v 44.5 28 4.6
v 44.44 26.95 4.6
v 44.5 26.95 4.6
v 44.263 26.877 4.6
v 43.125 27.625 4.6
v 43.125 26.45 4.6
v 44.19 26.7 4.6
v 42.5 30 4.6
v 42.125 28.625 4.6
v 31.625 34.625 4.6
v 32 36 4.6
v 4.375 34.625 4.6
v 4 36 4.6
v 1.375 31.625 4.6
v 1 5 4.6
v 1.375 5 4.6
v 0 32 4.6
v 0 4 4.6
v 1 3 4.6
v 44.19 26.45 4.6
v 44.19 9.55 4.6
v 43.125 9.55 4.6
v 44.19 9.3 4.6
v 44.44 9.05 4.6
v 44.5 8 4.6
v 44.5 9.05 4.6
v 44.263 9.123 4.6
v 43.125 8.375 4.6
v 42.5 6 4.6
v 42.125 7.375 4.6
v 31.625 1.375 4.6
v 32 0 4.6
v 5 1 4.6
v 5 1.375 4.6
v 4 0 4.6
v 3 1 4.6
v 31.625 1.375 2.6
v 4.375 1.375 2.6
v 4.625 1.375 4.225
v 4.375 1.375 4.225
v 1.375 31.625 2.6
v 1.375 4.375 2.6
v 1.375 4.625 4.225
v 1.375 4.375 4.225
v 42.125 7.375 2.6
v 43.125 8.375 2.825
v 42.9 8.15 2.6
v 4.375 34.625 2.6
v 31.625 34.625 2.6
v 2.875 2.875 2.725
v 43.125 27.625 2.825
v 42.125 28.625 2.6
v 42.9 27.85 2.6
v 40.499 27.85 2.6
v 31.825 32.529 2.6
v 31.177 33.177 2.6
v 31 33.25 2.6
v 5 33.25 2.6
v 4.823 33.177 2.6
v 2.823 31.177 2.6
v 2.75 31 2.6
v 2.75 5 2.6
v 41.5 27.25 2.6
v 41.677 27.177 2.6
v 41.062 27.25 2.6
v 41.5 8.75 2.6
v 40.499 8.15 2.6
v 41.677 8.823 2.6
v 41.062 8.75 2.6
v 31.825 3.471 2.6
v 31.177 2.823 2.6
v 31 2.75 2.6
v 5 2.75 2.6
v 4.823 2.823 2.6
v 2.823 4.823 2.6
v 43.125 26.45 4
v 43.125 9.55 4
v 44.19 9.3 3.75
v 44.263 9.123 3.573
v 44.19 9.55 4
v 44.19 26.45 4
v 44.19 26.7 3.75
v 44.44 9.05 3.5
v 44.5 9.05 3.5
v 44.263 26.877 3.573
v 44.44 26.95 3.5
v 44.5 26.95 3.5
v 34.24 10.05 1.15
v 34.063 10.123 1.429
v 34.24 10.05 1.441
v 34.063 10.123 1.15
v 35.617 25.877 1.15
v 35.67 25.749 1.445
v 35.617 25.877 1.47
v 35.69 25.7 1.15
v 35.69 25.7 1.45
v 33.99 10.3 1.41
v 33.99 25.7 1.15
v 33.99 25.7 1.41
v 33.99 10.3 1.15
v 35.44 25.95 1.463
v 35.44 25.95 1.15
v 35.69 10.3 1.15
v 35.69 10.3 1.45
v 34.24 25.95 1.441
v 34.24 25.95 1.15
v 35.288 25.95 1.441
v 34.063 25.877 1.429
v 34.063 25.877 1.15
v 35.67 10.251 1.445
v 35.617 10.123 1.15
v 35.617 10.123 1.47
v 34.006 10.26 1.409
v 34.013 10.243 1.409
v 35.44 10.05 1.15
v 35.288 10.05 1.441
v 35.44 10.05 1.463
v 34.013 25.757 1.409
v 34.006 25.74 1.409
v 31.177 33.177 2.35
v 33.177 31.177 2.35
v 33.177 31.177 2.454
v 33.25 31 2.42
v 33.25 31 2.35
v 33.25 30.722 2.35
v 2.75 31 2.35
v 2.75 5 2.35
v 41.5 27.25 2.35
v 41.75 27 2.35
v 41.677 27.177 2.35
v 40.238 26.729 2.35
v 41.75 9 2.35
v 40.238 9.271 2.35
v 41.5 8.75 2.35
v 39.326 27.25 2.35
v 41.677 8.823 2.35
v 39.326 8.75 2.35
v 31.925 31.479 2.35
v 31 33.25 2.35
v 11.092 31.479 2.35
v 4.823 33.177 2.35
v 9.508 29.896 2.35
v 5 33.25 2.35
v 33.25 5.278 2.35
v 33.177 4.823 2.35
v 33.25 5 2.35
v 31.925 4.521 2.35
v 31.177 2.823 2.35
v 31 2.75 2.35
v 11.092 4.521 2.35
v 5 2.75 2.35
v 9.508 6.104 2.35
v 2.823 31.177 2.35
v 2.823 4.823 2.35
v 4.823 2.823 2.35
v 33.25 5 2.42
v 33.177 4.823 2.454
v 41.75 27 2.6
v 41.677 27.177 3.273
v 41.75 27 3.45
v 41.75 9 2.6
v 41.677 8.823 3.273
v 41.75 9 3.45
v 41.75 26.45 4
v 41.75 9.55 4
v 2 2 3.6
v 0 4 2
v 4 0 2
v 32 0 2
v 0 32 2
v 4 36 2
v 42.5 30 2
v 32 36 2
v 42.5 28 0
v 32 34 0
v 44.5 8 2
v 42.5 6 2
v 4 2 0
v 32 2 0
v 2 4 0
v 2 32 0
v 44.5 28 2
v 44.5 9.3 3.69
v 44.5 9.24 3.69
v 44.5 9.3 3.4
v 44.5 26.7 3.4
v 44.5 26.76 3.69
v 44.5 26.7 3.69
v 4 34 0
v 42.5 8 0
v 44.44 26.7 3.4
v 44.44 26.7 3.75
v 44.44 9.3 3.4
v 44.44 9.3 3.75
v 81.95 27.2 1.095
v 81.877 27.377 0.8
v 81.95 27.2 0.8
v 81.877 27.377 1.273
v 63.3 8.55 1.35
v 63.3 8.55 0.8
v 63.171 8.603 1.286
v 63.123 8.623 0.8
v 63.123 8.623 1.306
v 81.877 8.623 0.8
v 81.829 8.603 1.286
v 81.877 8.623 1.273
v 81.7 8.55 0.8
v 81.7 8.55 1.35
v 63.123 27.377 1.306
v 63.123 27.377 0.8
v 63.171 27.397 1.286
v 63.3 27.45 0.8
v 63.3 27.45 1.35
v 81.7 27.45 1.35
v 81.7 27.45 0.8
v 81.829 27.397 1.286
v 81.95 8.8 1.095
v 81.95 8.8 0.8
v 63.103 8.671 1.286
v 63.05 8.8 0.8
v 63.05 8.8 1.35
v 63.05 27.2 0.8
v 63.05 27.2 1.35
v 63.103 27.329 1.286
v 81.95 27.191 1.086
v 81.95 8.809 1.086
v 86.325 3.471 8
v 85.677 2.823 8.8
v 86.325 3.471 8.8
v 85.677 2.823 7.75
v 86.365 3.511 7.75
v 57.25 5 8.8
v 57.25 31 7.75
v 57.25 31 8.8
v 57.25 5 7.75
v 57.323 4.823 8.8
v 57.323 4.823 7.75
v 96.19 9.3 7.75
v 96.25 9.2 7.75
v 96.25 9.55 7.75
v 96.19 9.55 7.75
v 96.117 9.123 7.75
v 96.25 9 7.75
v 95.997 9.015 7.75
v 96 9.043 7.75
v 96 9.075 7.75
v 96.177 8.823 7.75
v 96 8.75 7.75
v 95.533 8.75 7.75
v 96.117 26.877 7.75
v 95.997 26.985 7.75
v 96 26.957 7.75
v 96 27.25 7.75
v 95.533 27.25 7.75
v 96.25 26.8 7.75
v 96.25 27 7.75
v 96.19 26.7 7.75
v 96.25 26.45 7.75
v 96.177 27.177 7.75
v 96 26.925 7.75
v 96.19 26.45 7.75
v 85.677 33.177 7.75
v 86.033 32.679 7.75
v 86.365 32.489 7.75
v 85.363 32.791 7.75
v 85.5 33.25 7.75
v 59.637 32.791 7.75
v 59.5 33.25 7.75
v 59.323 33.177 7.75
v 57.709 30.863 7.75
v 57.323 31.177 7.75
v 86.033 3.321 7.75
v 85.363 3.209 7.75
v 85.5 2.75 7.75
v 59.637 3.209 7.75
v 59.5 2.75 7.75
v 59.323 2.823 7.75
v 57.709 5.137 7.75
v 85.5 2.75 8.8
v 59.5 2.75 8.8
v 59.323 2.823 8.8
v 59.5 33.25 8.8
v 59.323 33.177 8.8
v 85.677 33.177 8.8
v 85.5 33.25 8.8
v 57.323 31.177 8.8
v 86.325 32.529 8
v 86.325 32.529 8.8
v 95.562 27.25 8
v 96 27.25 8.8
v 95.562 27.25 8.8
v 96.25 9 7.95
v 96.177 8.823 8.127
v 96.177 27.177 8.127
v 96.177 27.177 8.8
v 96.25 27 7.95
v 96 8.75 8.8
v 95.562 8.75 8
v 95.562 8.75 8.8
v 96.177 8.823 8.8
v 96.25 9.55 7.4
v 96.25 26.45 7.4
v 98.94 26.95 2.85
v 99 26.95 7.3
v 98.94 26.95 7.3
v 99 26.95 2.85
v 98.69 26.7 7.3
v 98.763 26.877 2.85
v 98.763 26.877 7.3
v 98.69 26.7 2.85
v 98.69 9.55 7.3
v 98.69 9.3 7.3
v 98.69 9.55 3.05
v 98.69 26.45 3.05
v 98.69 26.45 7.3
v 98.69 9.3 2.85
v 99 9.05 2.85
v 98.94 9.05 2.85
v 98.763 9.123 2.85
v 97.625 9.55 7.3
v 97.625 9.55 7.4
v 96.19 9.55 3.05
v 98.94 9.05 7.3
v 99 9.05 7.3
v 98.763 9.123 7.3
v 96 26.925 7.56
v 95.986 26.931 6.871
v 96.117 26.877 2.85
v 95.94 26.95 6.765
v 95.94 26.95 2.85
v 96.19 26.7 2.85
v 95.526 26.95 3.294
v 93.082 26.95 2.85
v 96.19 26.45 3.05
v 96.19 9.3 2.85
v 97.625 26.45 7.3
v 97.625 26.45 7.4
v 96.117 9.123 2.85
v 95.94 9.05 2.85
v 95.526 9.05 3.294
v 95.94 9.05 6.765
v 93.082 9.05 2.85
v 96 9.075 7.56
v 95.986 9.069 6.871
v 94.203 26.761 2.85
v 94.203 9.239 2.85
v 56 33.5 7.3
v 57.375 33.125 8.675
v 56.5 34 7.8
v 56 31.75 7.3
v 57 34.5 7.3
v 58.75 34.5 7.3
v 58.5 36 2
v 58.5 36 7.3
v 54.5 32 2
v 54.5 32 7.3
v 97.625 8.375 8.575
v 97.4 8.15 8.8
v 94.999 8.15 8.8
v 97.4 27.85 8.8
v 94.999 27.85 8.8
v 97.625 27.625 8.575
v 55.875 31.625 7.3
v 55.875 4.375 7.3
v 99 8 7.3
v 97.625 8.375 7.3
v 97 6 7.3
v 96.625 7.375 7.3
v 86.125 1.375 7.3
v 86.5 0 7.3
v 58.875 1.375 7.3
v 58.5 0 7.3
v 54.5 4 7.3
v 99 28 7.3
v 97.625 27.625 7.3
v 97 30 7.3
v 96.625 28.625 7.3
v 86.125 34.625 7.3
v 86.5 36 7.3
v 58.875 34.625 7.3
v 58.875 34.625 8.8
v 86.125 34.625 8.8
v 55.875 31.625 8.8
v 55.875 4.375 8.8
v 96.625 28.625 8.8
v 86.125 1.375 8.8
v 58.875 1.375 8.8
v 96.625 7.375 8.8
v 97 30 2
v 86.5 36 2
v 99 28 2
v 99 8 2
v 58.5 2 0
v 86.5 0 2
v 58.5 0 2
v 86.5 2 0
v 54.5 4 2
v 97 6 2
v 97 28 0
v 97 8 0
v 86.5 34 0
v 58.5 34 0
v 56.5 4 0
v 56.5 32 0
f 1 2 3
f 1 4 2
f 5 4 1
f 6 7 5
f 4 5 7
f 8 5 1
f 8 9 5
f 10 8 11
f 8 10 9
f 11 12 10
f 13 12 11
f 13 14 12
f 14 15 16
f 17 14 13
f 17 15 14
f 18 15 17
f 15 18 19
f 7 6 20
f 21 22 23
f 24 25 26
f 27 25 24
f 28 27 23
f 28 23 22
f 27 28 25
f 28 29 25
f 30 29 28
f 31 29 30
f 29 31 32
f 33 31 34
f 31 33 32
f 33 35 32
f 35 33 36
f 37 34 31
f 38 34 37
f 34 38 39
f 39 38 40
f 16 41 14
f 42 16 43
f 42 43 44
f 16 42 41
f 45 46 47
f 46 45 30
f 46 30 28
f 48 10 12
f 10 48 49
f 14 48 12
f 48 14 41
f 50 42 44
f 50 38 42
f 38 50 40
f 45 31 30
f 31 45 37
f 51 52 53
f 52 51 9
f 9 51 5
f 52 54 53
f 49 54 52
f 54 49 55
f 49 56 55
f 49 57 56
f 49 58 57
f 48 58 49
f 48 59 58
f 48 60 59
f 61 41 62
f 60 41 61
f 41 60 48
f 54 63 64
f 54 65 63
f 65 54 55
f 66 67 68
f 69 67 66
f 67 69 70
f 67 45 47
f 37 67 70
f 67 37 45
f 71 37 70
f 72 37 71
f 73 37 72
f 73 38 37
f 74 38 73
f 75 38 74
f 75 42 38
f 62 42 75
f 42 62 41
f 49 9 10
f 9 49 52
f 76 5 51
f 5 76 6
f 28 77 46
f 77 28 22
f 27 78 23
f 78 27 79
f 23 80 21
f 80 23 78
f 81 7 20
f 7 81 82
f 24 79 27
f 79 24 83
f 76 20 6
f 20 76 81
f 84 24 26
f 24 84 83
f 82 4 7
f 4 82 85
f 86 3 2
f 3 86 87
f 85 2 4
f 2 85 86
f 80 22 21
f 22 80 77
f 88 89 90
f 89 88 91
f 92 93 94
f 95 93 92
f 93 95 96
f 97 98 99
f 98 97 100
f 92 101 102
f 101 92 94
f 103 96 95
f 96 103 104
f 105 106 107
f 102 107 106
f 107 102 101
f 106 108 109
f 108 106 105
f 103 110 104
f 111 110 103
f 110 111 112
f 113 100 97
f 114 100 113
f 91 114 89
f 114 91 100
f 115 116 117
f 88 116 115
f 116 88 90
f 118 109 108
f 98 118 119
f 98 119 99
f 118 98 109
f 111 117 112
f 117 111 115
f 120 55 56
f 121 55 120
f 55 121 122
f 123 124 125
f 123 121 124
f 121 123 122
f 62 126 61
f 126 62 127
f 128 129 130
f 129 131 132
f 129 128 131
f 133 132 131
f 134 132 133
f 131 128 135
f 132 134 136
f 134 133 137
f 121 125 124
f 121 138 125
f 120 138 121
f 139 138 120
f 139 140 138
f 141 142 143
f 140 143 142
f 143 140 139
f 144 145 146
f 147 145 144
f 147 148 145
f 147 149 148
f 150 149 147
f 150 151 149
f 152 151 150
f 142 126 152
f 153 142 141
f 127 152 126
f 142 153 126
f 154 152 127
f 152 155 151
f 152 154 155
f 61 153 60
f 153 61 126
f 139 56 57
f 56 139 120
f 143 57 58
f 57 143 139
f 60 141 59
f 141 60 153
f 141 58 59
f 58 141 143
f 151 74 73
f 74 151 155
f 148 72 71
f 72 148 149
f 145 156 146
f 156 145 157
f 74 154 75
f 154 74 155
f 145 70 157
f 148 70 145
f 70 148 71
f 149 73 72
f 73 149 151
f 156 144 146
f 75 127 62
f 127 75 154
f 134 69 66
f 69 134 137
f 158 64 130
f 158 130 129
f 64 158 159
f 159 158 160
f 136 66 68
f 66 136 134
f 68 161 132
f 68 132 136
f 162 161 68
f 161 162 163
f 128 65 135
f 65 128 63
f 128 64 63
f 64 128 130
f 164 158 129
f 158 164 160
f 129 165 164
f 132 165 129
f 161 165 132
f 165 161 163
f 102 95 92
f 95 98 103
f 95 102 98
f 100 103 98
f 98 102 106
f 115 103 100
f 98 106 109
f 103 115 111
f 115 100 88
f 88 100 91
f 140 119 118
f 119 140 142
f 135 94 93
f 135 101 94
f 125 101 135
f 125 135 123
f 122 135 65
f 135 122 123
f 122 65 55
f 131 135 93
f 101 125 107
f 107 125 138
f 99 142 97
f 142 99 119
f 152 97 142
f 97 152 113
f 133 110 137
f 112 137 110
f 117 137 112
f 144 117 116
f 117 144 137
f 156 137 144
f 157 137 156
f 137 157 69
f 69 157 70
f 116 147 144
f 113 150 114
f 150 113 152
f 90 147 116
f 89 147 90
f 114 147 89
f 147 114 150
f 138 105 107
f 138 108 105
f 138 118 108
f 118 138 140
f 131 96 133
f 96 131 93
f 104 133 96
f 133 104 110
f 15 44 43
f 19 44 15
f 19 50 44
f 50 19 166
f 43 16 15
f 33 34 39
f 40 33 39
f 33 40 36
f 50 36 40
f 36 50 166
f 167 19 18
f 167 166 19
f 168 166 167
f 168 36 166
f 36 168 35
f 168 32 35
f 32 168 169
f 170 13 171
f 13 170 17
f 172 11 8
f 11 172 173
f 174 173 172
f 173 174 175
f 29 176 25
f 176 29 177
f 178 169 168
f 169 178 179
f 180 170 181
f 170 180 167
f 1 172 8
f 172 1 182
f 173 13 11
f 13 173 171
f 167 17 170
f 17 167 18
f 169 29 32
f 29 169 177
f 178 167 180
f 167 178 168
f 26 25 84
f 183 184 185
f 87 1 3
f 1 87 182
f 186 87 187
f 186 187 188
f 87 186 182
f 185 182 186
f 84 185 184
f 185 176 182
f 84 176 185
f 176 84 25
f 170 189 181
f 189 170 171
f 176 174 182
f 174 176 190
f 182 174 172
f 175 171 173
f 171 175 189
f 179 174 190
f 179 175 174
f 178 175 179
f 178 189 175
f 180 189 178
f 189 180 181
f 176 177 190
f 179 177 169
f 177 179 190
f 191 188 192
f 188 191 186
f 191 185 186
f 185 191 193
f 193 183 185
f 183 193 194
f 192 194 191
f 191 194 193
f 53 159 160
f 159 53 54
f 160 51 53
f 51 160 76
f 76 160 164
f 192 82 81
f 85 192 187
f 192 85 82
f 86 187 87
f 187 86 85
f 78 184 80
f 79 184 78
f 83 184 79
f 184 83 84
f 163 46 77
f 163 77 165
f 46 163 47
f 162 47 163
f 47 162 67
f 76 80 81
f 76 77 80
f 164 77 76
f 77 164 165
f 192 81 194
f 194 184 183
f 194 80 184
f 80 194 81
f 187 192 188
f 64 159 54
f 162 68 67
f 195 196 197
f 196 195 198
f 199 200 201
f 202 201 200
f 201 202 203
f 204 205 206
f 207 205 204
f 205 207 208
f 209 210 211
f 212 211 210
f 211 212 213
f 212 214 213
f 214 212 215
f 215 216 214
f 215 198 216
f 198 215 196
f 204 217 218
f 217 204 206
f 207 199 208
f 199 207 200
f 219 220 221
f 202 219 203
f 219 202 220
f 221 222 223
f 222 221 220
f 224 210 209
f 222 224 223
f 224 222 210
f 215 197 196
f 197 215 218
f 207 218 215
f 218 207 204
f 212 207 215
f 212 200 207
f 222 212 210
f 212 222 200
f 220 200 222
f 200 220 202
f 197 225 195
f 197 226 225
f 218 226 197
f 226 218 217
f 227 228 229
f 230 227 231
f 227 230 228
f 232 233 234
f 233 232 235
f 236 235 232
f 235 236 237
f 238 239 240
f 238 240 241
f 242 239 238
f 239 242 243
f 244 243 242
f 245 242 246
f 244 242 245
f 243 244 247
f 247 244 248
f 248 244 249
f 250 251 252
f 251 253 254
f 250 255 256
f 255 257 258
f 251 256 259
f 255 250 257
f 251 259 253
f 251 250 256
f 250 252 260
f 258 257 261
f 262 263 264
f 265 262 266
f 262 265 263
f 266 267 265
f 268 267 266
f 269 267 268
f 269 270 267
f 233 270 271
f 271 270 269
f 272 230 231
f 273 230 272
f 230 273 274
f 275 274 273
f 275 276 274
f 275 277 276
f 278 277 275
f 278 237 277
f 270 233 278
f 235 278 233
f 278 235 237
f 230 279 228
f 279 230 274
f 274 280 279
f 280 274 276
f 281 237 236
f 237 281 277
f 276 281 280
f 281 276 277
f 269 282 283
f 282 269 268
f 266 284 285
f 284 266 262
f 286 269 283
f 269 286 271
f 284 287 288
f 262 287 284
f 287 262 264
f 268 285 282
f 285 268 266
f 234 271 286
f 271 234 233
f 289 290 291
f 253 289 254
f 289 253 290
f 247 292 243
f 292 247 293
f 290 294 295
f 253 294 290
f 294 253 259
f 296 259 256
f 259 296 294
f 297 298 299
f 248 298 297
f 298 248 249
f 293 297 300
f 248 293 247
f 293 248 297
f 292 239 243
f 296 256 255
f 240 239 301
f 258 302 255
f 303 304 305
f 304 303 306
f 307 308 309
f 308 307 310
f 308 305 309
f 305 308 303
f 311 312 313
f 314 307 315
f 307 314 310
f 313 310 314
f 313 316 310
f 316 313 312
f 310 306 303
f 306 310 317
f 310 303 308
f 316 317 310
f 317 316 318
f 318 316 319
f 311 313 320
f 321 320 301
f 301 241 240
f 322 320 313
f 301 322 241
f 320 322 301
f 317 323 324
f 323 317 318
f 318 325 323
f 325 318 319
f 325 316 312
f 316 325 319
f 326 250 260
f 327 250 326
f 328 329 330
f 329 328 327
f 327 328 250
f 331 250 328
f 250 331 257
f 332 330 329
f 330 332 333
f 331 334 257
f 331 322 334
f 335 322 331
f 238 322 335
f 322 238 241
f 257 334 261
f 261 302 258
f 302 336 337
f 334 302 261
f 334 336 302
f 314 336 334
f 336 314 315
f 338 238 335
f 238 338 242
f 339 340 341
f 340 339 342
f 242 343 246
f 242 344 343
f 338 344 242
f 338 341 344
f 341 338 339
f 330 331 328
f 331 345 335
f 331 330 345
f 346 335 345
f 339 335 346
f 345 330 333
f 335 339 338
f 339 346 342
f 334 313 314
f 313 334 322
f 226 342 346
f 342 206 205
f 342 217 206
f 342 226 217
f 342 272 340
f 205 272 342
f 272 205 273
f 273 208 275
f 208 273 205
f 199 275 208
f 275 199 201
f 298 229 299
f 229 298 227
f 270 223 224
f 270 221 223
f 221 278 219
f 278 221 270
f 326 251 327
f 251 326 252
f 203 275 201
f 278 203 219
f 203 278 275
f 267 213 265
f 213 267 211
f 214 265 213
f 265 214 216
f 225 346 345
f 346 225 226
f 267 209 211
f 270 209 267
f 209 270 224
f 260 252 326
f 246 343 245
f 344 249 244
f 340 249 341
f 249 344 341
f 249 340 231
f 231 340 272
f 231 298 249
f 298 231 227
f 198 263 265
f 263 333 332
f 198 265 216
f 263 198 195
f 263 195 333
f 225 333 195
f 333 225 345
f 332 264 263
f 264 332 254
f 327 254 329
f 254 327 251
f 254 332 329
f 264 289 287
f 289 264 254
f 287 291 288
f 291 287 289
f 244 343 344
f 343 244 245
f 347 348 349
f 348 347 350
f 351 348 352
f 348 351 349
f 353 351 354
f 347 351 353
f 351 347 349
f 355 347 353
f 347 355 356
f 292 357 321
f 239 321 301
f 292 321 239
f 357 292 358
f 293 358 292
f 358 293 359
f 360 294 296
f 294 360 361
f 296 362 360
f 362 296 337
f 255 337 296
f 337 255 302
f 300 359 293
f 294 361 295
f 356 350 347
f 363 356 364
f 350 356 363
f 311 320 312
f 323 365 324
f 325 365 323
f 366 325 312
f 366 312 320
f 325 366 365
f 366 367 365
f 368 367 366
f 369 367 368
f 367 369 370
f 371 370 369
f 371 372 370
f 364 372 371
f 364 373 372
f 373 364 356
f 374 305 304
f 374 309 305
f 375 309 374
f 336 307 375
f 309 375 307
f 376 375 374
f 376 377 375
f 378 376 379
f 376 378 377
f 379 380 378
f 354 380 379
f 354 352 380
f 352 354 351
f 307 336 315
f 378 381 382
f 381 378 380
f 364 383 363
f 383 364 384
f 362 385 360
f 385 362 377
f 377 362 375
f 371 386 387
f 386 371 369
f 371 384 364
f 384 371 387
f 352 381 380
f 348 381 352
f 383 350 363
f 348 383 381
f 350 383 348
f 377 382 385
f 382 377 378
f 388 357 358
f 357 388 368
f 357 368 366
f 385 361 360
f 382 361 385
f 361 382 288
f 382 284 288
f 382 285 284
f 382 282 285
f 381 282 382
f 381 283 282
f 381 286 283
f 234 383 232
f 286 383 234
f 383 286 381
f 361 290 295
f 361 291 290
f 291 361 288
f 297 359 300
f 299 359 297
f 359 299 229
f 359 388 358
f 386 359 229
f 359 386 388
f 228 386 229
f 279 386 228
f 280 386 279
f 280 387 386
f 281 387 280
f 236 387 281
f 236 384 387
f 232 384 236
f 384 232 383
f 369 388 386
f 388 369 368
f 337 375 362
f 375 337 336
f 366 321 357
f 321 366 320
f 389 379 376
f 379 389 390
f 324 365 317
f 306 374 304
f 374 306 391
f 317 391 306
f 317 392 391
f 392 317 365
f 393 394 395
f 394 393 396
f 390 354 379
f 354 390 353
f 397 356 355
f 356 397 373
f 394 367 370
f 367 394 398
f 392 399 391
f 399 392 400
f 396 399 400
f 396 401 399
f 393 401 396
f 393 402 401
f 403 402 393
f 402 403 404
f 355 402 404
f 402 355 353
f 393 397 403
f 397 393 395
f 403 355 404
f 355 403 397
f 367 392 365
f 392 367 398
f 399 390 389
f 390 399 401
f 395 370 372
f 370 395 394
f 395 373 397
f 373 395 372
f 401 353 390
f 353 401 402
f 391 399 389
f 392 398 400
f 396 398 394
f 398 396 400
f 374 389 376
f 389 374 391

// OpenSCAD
// Generated case design for KiCad/L86.kicad_pcb
// By https://github.com/revk/PCBCase
// Generated 2022-03-08 07:10:27
//

// Globals
margin=0.500000;
overlap=2.000000;
casebase=2.600000;
casetop=8.000000;
casewall=3.000000;
fit=0.000000;
edge=2.000000;
pcbthickness=0.800000;
nohull=false;

module pcb(h=pcbthickness){linear_extrude(height=h)polygon(points=[[30.000000,2.000000],[30.000000,6.000000],[38.500000,6.000000],[38.500000,24.000000],[30.000000,24.000000],[30.000000,28.000000],[28.000000,30.000000],[2.000000,30.000000],[0.000000,28.000000],[0.000000,2.000000],[2.000000,0.000000],[28.000000,0.000000]],paths=[[0,1,2,3,4,5,6,7,8,9,10,11,0]]);}

module outline(h=pcbthickness){linear_extrude(height=h)polygon(points=[[30.000000,2.000000],[30.000000,6.000000],[38.500000,6.000000],[38.500000,24.000000],[30.000000,24.000000],[30.000000,28.000000],[28.000000,30.000000],[2.000000,30.000000],[0.000000,28.000000],[0.000000,2.000000],[2.000000,0.000000],[28.000000,0.000000]],paths=[[0,1,2,3,4,5,6,7,8,9,10,11,0]]);}
spacing=54.500000;
pcbwidth=38.500000;
pcblength=30.000000;
// Populated PCB
module board(pushed=false){
	pcb();
translate([31.900000,15.000000,0.800000])rotate([0,0,90.000000])translate([0.000000,-3.600000,2.500000])rotate([0.000000,0.000000,180.000000])m0(pushed); // RevK:Molex_MiniSPOX_H6RA 22057065
translate([15.000000,15.000000,0.800000])rotate([-90.000000,0.000000,0.000000])m1(pushed); // RevK:L86-M33 L86-M33
}

module b(cx,cy,z,w,l,h){translate([cx-w/2,cy-l/2,z])cube([w,l,h]);}
module m0(pushed=false)
{ // RevK:Molex_MiniSPOX_H6RA 22057065
N=6;
A=2.4+N*2.5;
rotate([0,0,180])
translate([-A/2,-2.94,-2.5])
{
	cube([A,4.9,4.9]);
	cube([A,5.9,3.9]);
	hull()
	{
		cube([A,7.4,1]);
		cube([A,7.9,0.5]);
	}
	translate([1,6,-2])cube([A-2,1.2,4.5]); // Assumes cropped pins
	// Plug
	translate([0.5,-20,0.6])cube([A-1,21,4.1]);
	translate([0,-23,0])cube([A,20,4.9]);
}

}

module m1(pushed=false)
{ // RevK:L86-M33 L86-M33
rotate([90,0,0])b(0,0,0,18.4,18.4,6.95);
}

height=casebase+pcbthickness+casetop;

module boardf()
{ // This is the board, but stretched up to make a push out in from the front
	render()
	{
		intersection()
		{
			translate([-casewall-1,-casewall-1,-casebase-1]) cube([pcbwidth+casewall*2+2,pcblength+casewall*2+2,height+2]);
			minkowski()
			{
				board(true);
				cylinder(h=height+100,d=margin,$fn=8);
			}
		}
	}
}

module boardb()
{ // This is the board, but stretched down to make a push out in from the back
	render()
	{
		intersection()
		{
			translate([-casewall-1,-casewall-1,-casebase-1]) cube([pcbwidth+casewall*2+2,pcblength+casewall*2+2,height+2]);
			minkowski()
			{
				board(true);
				translate([0,0,-height-100])
				cylinder(h=height+100,d=margin,$fn=8);
			}
		}
	}
}

module boardm()
{
	render()
	{
 		minkowski()
 		{
			translate([0,0,-margin/2])cylinder(d=margin,h=margin,$fn=8);
 			board(false);
		}
		if(nohull) intersection()
    		{
        		translate([0,0,-(casebase-1)])pcb(pcbthickness+(casebase-1)+(casetop-1));
        		translate([0,0,-(casebase-1)])outline(pcbthickness+(casebase-1)+(casetop-1));
        		board(false);
    		}
		else hull()intersection()
                {
                        translate([0,0,-(casebase-1)])pcb(pcbthickness+(casebase-1)+(casetop-1));
                        translate([0,0,-(casebase-1)])outline(pcbthickness+(casebase-1)+(casetop-1));
                        board(false);
		}
 	}
}

module pcbh()
{ // PCB shape for case
	hull()outline();
}

module pyramid()
{ // A pyramid
 polyhedron(points=[[0,0,0],[-height,-height,height],[-height,height,height],[height,height,height],[height,-height,height]],faces=[[0,1,2],[0,2,3],[0,3,4],[0,4,1],[4,3,2,1]]);
}

module wall(d=0)
{ // The case wall
    	translate([0,0,-casebase-1])
    	minkowski()
    	{
    		pcbh();
	        cylinder(d=margin+d*2,h=height+2-pcbthickness,$fn=8);
   	}
}

module cutf()
{ // This cut up from base in the wall
	intersection()
	{
		boardf();
		difference()
		{
			translate([-casewall+0.01,-casewall+0.01,-casebase+0.01])cube([pcbwidth+casewall*2-0.02,pcblength+casewall*2-0.02,casebase+overlap]);
			wall();
			boardb();
		}
	}
}

module cutb()
{ // The cut down from top in the wall
	intersection()
	{
		boardb();
		difference()
		{
			translate([-casewall+0.01,-casewall+0.01,0.01])cube([pcbwidth+casewall*2-0.02,pcblength+casewall*2-0.02,casetop+pcbthickness]);
			wall();
			boardf();
		}
	}
}

module cutpf()
{ // the push up but pyramid
	render()
	intersection()
	{
		minkowski()
		{
			pyramid();
			cutf();
		}
		difference()
		{
			translate([-casewall-0.01,-casewall-0.01,-casebase-0.01])cube([pcbwidth+casewall*2+0.02,pcblength+casewall*2+0.02,casebase+overlap+0.02]);
			wall();
			board(true);
		}
		translate([-casewall,-casewall,-casebase])case();
	}
}

module cutpb()
{ // the push down but pyramid
	render()
	intersection()
	{
		minkowski()
		{
			scale([1,1,-1])pyramid();
			cutb();
		}
		difference()
		{
			translate([-casewall-0.01,-casewall-0.01,-0.01])cube([pcbwidth+casewall*2+0.02,pcblength+casewall*2+0.02,casetop+pcbthickness+0.02]);
			wall();
			board(true);
		}
		translate([-casewall,-casewall,-casebase])case();
	}
}


module case()
{ // The basic case
        minkowski()
        {
            pcbh();
            hull()
		{
			translate([edge,0,edge])
			cube([casewall*2-edge*2,casewall*2,height-edge*2-pcbthickness]);
			translate([0,edge,edge])
			cube([casewall*2,casewall*2-edge*2,height-edge*2-pcbthickness]);
			translate([edge,edge,0])
			cube([casewall*2-edge*2,casewall*2-edge*2,height-pcbthickness]);
		}
        }
}

module cut(d=0)
{ // The cut point in the wall
	minkowski()
	{
        	pcbh();
		hull()
		{
			translate([casewall/2-d/2-margin/4+casewall/3,casewall/2-d/2-margin/4,casebase])
				cube([casewall+d+margin/2-2*casewall/3,casewall+d+margin/2,casetop+pcbthickness+1]);
			translate([casewall/2-d/2-margin/4,casewall/2-d/2-margin/4+casewall/3,casebase])
				cube([casewall+d+margin/2,casewall+d+margin/2-2*casewall/3,casetop+pcbthickness+1]);
		}
	}
}

module base()
{ // The base
	difference()
	{
		case();
		difference()
		{
			union()
			{
				translate([-1,-1,casebase+overlap])cube([pcbwidth+casewall*2+2,pcblength+casewall*2+2,casetop+1]);
				cut(fit);
			}
		}
		translate([casewall,casewall,casebase])boardf();
		translate([casewall,casewall,casebase])boardm();
		translate([casewall,casewall,casebase])cutpf();
	}
	translate([casewall,casewall,casebase])cutpb();
}

module top()
{
	translate([0,pcblength+casewall*2,height])rotate([180,0,0])
	{
		difference()
		{
			case();
			difference()
			{
				translate([-1,-1,-1])cube([pcbwidth+casewall*2+2,pcblength+casewall*2+2,casebase+overlap-margin+1]);
				cut(-fit);
			}
			translate([casewall,casewall,casebase])boardb();
			translate([casewall,casewall,casebase])boardm();
			translate([casewall,casewall,casebase])cutpb();
		}
		translate([casewall,casewall,casebase])cutpf();
	}
}

module test()
{
	translate([0*spacing,0,0])pcb();
	translate([1*spacing,0,0])outline();
	translate([2*spacing,0,0])wall();
	translate([3*spacing,0,0])board();
	translate([4*spacing,0,0])board(true);
	translate([5*spacing,0,0])boardf();
	translate([6*spacing,0,0])boardb();
	translate([7*spacing,0,0])cutpf();
	translate([8*spacing,0,0])cutpb();
	translate([9*spacing,0,0])cutf();
	translate([10*spacing,0,0])cutb();
	translate([11*spacing,0,0])case();
	translate([12*spacing,0,0])base();
	translate([13*spacing,0,0])top();
}

module parts()
{
	base();
	translate([spacing,0,0])top();
}
base(); translate([spacing,0,0])top();
